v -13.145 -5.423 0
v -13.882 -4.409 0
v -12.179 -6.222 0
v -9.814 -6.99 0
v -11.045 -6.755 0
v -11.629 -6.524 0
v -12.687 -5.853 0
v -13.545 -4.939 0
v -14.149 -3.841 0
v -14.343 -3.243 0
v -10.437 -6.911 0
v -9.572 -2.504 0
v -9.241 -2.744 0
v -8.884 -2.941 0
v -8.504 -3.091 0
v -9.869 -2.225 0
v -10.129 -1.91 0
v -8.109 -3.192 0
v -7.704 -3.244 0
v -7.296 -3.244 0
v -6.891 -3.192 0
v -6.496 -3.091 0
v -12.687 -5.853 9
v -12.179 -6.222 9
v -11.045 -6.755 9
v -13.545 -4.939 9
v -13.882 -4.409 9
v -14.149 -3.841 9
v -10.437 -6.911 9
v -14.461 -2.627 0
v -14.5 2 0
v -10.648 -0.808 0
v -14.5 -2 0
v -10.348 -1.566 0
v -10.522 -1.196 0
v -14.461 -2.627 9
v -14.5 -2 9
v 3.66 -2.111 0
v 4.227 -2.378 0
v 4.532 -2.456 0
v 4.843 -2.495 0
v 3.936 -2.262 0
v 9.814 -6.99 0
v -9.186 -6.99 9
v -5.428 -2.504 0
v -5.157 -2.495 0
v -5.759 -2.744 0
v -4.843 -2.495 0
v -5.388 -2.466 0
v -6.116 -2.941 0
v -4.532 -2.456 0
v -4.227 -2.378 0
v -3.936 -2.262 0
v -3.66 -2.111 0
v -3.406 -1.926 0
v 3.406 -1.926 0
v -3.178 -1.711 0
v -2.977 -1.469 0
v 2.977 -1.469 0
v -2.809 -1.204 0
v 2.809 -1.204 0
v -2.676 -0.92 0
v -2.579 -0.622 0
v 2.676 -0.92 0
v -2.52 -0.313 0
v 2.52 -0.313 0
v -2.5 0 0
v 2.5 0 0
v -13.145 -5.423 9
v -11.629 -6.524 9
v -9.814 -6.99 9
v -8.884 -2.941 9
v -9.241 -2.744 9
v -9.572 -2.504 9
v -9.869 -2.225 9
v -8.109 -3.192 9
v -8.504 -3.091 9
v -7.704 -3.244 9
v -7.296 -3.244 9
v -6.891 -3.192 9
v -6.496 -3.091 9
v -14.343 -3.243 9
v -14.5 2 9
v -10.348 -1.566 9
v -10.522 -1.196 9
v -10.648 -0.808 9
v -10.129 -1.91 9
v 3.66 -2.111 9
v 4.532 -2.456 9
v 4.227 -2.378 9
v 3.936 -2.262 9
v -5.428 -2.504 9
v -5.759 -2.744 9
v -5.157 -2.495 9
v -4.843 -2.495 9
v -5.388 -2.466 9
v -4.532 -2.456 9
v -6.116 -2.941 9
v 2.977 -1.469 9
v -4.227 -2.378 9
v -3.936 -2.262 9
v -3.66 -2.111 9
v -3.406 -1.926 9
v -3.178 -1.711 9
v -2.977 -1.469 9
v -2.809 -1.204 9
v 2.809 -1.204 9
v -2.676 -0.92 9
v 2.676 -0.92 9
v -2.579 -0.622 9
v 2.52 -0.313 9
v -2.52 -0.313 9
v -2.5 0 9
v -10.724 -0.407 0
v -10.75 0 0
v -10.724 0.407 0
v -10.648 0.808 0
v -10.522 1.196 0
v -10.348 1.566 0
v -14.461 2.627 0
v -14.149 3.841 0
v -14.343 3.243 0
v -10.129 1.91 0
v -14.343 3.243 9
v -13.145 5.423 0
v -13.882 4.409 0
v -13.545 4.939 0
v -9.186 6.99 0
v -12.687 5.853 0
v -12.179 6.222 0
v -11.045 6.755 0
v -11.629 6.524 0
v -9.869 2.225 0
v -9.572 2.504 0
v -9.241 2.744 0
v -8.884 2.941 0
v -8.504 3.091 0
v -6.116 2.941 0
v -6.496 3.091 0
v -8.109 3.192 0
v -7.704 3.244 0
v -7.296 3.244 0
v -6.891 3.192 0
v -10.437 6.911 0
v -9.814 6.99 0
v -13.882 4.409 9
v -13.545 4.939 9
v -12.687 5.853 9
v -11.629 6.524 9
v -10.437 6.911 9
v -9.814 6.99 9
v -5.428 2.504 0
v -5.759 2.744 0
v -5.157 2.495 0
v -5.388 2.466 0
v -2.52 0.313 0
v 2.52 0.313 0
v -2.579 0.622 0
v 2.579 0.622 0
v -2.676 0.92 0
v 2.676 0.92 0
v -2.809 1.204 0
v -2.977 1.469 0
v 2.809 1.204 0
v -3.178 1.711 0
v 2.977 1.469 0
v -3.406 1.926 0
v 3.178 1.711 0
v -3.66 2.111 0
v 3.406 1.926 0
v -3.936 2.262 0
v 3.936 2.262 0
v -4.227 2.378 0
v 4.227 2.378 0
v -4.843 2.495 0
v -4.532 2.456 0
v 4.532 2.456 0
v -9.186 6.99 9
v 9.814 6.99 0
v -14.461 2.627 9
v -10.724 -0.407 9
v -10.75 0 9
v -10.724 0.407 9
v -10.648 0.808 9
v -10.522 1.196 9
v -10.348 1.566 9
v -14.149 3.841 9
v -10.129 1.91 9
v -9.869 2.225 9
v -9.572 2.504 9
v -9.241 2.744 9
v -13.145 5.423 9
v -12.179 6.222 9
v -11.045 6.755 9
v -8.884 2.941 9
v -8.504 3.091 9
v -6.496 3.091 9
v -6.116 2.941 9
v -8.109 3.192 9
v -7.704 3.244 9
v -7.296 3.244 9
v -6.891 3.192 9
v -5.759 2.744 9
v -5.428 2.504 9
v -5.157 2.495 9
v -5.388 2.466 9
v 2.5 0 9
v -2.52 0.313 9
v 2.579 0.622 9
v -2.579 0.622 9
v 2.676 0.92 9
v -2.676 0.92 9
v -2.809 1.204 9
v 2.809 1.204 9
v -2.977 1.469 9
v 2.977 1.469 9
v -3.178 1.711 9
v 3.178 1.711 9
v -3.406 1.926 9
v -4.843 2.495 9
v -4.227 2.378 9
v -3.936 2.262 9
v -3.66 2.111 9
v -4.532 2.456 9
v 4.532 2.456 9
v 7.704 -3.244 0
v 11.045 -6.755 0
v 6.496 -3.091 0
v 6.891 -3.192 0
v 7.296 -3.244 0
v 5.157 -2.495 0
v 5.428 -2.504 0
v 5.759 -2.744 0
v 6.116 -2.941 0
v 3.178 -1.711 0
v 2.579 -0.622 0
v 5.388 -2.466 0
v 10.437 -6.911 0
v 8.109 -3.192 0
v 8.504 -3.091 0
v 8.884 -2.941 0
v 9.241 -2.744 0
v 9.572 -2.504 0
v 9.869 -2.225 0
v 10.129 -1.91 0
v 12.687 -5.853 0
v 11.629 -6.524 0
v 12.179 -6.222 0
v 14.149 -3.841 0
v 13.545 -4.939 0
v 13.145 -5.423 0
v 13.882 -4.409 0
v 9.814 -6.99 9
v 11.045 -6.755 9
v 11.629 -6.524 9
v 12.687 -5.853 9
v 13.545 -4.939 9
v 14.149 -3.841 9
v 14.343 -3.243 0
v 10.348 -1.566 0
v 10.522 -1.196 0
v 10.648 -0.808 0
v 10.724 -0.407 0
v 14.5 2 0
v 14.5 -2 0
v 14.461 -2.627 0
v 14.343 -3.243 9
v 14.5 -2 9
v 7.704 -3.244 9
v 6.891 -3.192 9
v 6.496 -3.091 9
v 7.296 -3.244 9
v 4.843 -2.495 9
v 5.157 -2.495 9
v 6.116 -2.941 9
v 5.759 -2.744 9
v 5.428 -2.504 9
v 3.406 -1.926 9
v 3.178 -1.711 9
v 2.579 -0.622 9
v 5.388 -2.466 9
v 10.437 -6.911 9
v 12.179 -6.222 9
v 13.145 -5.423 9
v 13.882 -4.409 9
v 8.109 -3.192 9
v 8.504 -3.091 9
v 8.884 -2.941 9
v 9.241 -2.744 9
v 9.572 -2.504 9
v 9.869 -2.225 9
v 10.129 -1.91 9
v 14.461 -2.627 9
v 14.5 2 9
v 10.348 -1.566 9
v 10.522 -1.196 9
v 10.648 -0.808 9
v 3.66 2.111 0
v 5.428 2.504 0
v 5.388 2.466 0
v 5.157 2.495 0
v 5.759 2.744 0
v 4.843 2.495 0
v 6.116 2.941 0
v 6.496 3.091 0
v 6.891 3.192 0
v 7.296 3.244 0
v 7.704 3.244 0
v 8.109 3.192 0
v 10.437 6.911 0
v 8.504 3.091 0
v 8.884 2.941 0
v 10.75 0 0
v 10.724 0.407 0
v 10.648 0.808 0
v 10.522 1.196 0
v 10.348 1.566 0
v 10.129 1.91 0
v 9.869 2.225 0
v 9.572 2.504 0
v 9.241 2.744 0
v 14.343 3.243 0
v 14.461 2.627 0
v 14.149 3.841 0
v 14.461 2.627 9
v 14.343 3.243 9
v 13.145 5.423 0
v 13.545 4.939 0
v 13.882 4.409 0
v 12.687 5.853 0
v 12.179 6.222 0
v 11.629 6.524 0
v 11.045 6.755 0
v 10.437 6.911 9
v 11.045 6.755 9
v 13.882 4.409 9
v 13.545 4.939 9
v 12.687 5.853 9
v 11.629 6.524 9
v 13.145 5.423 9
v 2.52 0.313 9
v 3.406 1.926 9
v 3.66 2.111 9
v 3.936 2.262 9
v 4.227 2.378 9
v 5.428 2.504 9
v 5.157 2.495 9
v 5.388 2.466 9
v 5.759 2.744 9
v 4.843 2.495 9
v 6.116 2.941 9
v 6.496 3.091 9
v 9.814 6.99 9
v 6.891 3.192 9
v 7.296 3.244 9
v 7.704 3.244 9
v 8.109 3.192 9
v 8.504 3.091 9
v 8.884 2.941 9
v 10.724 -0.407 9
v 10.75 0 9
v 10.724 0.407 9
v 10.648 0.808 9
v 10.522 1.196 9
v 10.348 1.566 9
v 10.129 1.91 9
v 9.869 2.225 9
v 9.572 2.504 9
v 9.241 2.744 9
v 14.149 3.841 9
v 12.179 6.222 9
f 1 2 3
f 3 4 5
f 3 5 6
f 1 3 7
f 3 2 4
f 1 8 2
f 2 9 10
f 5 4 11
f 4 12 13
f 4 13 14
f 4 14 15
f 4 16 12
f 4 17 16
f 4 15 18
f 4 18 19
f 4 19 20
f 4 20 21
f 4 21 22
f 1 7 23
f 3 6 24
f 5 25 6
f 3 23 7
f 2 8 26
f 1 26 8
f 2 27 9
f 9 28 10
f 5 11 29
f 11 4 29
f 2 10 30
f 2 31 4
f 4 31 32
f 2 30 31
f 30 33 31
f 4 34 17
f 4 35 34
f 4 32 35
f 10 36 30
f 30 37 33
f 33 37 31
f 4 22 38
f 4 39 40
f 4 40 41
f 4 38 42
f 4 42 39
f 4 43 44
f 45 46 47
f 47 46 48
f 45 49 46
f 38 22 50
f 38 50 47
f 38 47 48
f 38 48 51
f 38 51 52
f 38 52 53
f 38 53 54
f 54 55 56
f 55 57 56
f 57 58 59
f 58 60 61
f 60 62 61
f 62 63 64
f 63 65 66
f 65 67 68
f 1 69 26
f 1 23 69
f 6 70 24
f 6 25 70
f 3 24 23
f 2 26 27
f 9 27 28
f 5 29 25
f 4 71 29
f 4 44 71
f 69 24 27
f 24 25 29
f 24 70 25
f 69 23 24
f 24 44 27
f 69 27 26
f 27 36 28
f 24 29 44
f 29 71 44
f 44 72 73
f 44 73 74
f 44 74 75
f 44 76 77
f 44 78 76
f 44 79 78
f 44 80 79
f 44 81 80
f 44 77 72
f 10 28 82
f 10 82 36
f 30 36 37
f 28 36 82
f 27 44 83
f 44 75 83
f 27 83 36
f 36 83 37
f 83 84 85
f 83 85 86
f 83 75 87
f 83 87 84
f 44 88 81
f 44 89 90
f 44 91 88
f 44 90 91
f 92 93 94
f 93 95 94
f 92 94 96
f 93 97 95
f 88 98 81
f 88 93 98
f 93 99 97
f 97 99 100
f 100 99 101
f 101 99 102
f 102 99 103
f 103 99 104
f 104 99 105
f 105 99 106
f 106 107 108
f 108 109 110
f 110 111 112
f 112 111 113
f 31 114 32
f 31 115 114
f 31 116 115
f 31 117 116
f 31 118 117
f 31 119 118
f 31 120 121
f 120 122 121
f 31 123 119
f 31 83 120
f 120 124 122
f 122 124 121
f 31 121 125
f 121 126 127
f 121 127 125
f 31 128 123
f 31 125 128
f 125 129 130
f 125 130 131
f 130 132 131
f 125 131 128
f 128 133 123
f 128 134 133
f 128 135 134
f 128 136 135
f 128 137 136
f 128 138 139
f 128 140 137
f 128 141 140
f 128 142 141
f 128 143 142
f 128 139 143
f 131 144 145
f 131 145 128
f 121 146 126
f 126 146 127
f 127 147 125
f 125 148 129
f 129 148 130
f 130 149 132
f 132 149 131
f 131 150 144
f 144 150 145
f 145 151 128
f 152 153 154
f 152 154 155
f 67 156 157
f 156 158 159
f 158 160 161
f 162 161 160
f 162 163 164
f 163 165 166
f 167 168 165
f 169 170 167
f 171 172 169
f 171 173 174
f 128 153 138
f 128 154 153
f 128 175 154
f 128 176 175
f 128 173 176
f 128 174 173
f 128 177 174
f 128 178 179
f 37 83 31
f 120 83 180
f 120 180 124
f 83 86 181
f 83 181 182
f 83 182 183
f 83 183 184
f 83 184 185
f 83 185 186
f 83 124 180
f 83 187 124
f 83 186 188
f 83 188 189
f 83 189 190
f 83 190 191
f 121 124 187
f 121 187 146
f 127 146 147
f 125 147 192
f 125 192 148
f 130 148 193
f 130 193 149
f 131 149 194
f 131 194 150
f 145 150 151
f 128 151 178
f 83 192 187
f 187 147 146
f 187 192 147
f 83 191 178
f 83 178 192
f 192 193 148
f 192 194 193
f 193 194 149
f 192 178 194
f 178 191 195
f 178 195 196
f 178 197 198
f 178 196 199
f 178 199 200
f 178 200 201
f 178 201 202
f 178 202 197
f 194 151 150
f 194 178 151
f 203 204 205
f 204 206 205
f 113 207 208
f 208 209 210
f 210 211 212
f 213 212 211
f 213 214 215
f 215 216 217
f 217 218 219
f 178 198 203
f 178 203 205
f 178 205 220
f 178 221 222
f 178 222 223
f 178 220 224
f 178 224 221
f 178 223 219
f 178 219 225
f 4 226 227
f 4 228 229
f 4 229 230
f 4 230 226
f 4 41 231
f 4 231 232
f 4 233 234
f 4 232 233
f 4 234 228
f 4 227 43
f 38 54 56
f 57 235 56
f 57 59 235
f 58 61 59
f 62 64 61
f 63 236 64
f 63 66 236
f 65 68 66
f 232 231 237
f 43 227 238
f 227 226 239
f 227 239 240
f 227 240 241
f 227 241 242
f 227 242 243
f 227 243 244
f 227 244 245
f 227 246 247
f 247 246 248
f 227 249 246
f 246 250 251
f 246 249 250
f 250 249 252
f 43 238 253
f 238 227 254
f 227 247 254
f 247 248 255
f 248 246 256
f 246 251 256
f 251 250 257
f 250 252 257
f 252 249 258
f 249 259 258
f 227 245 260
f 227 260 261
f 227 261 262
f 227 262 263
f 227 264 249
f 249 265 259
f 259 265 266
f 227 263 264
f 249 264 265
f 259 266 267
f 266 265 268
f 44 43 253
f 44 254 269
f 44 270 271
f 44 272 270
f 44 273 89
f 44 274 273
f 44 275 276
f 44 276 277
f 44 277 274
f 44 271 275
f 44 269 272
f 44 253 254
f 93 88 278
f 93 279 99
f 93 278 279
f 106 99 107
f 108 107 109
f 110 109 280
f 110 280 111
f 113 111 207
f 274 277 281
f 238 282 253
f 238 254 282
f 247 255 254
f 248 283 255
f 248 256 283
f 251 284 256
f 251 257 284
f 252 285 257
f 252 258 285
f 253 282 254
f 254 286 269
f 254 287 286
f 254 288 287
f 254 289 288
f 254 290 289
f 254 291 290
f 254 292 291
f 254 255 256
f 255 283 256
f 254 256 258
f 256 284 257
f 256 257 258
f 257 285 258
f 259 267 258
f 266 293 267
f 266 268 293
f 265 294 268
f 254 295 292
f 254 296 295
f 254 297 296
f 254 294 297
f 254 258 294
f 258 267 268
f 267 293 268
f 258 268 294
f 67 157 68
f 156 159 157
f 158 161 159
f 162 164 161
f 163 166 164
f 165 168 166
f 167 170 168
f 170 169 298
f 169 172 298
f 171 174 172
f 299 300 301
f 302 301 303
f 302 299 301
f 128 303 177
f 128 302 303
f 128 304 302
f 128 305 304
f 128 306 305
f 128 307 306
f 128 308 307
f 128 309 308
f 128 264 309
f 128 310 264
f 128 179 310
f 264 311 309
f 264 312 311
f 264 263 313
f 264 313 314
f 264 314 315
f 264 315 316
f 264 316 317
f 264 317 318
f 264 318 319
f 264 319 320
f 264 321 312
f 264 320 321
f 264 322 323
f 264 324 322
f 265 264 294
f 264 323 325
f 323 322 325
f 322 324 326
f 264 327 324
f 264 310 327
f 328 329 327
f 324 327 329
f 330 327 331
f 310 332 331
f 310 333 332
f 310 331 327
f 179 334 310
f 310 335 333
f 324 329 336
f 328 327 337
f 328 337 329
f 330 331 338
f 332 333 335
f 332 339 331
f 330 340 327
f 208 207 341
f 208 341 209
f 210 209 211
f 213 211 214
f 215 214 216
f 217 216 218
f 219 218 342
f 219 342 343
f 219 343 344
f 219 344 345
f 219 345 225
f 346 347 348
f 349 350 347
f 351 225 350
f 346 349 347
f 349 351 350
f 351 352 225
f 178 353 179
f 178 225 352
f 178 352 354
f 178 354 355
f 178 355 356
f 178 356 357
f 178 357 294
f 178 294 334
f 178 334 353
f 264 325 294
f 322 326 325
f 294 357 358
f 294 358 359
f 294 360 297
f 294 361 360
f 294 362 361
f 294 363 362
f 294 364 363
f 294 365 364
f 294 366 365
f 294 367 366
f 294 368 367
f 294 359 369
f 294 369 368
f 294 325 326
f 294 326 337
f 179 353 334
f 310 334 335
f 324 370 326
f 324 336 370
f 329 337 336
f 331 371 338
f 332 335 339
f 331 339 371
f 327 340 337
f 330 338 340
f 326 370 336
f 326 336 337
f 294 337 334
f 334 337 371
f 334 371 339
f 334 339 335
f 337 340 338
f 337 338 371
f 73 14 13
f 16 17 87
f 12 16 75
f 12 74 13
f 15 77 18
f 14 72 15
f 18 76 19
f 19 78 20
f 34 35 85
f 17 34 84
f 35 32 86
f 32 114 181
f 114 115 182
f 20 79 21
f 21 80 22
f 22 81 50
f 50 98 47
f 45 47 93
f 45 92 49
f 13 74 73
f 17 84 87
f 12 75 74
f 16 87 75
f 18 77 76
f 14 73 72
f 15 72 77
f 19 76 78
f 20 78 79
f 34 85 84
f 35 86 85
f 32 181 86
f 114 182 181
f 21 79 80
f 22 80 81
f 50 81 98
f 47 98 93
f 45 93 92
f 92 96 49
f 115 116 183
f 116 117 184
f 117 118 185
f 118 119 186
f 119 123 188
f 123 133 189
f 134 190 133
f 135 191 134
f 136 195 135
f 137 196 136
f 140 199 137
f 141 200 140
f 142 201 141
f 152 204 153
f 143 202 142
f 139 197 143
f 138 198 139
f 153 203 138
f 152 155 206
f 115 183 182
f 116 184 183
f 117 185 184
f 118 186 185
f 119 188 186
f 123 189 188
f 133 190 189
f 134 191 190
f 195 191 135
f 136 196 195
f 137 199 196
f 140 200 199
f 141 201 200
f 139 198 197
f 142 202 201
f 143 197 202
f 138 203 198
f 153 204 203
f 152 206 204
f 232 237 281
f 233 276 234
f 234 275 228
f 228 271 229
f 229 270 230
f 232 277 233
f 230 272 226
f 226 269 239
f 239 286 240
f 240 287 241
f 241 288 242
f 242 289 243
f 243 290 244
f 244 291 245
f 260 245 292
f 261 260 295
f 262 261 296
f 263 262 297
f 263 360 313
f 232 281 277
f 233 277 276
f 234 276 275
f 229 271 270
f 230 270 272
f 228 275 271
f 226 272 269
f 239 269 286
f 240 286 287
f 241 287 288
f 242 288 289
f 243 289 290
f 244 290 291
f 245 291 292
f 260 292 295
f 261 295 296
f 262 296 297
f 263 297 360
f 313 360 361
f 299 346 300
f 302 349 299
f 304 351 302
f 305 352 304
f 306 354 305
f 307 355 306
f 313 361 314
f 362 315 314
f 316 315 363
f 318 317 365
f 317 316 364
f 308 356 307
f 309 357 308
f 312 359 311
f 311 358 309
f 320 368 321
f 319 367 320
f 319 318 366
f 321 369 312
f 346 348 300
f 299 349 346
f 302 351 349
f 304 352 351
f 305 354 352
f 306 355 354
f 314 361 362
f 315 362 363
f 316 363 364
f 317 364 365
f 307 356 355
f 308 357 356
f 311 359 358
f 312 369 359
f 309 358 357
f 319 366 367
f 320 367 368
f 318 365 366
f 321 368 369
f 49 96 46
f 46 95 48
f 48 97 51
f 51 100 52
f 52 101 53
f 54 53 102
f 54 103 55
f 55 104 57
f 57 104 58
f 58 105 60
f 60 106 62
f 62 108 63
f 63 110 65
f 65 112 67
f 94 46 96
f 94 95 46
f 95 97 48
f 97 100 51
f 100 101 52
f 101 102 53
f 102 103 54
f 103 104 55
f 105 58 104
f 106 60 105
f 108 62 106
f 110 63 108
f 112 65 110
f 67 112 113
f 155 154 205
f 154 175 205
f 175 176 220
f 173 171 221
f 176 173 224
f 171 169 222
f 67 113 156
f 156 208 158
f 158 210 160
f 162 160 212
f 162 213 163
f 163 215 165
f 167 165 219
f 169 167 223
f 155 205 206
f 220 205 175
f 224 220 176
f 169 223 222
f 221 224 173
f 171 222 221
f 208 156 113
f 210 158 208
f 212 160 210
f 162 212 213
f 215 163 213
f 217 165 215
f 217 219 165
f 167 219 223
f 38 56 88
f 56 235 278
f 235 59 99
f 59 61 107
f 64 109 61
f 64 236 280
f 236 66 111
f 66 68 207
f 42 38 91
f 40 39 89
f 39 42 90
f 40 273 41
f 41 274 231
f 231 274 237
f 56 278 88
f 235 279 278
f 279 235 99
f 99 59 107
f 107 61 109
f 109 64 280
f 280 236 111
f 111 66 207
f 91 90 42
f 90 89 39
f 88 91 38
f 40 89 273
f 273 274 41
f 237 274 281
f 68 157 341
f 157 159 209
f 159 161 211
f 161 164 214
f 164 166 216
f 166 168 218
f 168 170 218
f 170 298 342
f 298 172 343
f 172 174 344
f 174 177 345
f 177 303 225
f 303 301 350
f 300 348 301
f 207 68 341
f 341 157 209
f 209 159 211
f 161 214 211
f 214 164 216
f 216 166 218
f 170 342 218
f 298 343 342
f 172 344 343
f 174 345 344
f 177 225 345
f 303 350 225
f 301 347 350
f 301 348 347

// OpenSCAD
$fn = 50;

difference() {
	union() {
		hull() {
			translate(v = [-9.5, 2.0, 0]) {
				cylinder(h = 9, r = 5);
			}
			translate(v = [9.5, 2.0, 0]) {
				cylinder(h = 9, r = 5);
			}
			translate(v = [-9.5, -2.0, 0]) {
				cylinder(h = 9, r = 5);
			}
			translate(v = [9.5, -2.0, 0]) {
				cylinder(h = 9, r = 5);
			}
		}
	}
	union() {
		translate(v = [-7.5, 0.0, -100.0]) {
			cylinder(h = 200, r = 3.25);
		}
		translate(v = [7.5, 0.0, -100.0]) {
			cylinder(h = 200, r = 3.25);
		}
		translate(v = [-7.5, 0.0, -100.0]) {
			cylinder(h = 200, r = 1.8);
		}
		translate(v = [7.5, 0.0, -100.0]) {
			cylinder(h = 200, r = 1.8);
		}
		translate(v = [-5.0, 0, 0.0]) {
			cylinder(h = 9, r = 2.5);
		}
		translate(v = [5.0, 0, 0.0]) {
			cylinder(h = 9, r = 2.5);
		}
	}
}
